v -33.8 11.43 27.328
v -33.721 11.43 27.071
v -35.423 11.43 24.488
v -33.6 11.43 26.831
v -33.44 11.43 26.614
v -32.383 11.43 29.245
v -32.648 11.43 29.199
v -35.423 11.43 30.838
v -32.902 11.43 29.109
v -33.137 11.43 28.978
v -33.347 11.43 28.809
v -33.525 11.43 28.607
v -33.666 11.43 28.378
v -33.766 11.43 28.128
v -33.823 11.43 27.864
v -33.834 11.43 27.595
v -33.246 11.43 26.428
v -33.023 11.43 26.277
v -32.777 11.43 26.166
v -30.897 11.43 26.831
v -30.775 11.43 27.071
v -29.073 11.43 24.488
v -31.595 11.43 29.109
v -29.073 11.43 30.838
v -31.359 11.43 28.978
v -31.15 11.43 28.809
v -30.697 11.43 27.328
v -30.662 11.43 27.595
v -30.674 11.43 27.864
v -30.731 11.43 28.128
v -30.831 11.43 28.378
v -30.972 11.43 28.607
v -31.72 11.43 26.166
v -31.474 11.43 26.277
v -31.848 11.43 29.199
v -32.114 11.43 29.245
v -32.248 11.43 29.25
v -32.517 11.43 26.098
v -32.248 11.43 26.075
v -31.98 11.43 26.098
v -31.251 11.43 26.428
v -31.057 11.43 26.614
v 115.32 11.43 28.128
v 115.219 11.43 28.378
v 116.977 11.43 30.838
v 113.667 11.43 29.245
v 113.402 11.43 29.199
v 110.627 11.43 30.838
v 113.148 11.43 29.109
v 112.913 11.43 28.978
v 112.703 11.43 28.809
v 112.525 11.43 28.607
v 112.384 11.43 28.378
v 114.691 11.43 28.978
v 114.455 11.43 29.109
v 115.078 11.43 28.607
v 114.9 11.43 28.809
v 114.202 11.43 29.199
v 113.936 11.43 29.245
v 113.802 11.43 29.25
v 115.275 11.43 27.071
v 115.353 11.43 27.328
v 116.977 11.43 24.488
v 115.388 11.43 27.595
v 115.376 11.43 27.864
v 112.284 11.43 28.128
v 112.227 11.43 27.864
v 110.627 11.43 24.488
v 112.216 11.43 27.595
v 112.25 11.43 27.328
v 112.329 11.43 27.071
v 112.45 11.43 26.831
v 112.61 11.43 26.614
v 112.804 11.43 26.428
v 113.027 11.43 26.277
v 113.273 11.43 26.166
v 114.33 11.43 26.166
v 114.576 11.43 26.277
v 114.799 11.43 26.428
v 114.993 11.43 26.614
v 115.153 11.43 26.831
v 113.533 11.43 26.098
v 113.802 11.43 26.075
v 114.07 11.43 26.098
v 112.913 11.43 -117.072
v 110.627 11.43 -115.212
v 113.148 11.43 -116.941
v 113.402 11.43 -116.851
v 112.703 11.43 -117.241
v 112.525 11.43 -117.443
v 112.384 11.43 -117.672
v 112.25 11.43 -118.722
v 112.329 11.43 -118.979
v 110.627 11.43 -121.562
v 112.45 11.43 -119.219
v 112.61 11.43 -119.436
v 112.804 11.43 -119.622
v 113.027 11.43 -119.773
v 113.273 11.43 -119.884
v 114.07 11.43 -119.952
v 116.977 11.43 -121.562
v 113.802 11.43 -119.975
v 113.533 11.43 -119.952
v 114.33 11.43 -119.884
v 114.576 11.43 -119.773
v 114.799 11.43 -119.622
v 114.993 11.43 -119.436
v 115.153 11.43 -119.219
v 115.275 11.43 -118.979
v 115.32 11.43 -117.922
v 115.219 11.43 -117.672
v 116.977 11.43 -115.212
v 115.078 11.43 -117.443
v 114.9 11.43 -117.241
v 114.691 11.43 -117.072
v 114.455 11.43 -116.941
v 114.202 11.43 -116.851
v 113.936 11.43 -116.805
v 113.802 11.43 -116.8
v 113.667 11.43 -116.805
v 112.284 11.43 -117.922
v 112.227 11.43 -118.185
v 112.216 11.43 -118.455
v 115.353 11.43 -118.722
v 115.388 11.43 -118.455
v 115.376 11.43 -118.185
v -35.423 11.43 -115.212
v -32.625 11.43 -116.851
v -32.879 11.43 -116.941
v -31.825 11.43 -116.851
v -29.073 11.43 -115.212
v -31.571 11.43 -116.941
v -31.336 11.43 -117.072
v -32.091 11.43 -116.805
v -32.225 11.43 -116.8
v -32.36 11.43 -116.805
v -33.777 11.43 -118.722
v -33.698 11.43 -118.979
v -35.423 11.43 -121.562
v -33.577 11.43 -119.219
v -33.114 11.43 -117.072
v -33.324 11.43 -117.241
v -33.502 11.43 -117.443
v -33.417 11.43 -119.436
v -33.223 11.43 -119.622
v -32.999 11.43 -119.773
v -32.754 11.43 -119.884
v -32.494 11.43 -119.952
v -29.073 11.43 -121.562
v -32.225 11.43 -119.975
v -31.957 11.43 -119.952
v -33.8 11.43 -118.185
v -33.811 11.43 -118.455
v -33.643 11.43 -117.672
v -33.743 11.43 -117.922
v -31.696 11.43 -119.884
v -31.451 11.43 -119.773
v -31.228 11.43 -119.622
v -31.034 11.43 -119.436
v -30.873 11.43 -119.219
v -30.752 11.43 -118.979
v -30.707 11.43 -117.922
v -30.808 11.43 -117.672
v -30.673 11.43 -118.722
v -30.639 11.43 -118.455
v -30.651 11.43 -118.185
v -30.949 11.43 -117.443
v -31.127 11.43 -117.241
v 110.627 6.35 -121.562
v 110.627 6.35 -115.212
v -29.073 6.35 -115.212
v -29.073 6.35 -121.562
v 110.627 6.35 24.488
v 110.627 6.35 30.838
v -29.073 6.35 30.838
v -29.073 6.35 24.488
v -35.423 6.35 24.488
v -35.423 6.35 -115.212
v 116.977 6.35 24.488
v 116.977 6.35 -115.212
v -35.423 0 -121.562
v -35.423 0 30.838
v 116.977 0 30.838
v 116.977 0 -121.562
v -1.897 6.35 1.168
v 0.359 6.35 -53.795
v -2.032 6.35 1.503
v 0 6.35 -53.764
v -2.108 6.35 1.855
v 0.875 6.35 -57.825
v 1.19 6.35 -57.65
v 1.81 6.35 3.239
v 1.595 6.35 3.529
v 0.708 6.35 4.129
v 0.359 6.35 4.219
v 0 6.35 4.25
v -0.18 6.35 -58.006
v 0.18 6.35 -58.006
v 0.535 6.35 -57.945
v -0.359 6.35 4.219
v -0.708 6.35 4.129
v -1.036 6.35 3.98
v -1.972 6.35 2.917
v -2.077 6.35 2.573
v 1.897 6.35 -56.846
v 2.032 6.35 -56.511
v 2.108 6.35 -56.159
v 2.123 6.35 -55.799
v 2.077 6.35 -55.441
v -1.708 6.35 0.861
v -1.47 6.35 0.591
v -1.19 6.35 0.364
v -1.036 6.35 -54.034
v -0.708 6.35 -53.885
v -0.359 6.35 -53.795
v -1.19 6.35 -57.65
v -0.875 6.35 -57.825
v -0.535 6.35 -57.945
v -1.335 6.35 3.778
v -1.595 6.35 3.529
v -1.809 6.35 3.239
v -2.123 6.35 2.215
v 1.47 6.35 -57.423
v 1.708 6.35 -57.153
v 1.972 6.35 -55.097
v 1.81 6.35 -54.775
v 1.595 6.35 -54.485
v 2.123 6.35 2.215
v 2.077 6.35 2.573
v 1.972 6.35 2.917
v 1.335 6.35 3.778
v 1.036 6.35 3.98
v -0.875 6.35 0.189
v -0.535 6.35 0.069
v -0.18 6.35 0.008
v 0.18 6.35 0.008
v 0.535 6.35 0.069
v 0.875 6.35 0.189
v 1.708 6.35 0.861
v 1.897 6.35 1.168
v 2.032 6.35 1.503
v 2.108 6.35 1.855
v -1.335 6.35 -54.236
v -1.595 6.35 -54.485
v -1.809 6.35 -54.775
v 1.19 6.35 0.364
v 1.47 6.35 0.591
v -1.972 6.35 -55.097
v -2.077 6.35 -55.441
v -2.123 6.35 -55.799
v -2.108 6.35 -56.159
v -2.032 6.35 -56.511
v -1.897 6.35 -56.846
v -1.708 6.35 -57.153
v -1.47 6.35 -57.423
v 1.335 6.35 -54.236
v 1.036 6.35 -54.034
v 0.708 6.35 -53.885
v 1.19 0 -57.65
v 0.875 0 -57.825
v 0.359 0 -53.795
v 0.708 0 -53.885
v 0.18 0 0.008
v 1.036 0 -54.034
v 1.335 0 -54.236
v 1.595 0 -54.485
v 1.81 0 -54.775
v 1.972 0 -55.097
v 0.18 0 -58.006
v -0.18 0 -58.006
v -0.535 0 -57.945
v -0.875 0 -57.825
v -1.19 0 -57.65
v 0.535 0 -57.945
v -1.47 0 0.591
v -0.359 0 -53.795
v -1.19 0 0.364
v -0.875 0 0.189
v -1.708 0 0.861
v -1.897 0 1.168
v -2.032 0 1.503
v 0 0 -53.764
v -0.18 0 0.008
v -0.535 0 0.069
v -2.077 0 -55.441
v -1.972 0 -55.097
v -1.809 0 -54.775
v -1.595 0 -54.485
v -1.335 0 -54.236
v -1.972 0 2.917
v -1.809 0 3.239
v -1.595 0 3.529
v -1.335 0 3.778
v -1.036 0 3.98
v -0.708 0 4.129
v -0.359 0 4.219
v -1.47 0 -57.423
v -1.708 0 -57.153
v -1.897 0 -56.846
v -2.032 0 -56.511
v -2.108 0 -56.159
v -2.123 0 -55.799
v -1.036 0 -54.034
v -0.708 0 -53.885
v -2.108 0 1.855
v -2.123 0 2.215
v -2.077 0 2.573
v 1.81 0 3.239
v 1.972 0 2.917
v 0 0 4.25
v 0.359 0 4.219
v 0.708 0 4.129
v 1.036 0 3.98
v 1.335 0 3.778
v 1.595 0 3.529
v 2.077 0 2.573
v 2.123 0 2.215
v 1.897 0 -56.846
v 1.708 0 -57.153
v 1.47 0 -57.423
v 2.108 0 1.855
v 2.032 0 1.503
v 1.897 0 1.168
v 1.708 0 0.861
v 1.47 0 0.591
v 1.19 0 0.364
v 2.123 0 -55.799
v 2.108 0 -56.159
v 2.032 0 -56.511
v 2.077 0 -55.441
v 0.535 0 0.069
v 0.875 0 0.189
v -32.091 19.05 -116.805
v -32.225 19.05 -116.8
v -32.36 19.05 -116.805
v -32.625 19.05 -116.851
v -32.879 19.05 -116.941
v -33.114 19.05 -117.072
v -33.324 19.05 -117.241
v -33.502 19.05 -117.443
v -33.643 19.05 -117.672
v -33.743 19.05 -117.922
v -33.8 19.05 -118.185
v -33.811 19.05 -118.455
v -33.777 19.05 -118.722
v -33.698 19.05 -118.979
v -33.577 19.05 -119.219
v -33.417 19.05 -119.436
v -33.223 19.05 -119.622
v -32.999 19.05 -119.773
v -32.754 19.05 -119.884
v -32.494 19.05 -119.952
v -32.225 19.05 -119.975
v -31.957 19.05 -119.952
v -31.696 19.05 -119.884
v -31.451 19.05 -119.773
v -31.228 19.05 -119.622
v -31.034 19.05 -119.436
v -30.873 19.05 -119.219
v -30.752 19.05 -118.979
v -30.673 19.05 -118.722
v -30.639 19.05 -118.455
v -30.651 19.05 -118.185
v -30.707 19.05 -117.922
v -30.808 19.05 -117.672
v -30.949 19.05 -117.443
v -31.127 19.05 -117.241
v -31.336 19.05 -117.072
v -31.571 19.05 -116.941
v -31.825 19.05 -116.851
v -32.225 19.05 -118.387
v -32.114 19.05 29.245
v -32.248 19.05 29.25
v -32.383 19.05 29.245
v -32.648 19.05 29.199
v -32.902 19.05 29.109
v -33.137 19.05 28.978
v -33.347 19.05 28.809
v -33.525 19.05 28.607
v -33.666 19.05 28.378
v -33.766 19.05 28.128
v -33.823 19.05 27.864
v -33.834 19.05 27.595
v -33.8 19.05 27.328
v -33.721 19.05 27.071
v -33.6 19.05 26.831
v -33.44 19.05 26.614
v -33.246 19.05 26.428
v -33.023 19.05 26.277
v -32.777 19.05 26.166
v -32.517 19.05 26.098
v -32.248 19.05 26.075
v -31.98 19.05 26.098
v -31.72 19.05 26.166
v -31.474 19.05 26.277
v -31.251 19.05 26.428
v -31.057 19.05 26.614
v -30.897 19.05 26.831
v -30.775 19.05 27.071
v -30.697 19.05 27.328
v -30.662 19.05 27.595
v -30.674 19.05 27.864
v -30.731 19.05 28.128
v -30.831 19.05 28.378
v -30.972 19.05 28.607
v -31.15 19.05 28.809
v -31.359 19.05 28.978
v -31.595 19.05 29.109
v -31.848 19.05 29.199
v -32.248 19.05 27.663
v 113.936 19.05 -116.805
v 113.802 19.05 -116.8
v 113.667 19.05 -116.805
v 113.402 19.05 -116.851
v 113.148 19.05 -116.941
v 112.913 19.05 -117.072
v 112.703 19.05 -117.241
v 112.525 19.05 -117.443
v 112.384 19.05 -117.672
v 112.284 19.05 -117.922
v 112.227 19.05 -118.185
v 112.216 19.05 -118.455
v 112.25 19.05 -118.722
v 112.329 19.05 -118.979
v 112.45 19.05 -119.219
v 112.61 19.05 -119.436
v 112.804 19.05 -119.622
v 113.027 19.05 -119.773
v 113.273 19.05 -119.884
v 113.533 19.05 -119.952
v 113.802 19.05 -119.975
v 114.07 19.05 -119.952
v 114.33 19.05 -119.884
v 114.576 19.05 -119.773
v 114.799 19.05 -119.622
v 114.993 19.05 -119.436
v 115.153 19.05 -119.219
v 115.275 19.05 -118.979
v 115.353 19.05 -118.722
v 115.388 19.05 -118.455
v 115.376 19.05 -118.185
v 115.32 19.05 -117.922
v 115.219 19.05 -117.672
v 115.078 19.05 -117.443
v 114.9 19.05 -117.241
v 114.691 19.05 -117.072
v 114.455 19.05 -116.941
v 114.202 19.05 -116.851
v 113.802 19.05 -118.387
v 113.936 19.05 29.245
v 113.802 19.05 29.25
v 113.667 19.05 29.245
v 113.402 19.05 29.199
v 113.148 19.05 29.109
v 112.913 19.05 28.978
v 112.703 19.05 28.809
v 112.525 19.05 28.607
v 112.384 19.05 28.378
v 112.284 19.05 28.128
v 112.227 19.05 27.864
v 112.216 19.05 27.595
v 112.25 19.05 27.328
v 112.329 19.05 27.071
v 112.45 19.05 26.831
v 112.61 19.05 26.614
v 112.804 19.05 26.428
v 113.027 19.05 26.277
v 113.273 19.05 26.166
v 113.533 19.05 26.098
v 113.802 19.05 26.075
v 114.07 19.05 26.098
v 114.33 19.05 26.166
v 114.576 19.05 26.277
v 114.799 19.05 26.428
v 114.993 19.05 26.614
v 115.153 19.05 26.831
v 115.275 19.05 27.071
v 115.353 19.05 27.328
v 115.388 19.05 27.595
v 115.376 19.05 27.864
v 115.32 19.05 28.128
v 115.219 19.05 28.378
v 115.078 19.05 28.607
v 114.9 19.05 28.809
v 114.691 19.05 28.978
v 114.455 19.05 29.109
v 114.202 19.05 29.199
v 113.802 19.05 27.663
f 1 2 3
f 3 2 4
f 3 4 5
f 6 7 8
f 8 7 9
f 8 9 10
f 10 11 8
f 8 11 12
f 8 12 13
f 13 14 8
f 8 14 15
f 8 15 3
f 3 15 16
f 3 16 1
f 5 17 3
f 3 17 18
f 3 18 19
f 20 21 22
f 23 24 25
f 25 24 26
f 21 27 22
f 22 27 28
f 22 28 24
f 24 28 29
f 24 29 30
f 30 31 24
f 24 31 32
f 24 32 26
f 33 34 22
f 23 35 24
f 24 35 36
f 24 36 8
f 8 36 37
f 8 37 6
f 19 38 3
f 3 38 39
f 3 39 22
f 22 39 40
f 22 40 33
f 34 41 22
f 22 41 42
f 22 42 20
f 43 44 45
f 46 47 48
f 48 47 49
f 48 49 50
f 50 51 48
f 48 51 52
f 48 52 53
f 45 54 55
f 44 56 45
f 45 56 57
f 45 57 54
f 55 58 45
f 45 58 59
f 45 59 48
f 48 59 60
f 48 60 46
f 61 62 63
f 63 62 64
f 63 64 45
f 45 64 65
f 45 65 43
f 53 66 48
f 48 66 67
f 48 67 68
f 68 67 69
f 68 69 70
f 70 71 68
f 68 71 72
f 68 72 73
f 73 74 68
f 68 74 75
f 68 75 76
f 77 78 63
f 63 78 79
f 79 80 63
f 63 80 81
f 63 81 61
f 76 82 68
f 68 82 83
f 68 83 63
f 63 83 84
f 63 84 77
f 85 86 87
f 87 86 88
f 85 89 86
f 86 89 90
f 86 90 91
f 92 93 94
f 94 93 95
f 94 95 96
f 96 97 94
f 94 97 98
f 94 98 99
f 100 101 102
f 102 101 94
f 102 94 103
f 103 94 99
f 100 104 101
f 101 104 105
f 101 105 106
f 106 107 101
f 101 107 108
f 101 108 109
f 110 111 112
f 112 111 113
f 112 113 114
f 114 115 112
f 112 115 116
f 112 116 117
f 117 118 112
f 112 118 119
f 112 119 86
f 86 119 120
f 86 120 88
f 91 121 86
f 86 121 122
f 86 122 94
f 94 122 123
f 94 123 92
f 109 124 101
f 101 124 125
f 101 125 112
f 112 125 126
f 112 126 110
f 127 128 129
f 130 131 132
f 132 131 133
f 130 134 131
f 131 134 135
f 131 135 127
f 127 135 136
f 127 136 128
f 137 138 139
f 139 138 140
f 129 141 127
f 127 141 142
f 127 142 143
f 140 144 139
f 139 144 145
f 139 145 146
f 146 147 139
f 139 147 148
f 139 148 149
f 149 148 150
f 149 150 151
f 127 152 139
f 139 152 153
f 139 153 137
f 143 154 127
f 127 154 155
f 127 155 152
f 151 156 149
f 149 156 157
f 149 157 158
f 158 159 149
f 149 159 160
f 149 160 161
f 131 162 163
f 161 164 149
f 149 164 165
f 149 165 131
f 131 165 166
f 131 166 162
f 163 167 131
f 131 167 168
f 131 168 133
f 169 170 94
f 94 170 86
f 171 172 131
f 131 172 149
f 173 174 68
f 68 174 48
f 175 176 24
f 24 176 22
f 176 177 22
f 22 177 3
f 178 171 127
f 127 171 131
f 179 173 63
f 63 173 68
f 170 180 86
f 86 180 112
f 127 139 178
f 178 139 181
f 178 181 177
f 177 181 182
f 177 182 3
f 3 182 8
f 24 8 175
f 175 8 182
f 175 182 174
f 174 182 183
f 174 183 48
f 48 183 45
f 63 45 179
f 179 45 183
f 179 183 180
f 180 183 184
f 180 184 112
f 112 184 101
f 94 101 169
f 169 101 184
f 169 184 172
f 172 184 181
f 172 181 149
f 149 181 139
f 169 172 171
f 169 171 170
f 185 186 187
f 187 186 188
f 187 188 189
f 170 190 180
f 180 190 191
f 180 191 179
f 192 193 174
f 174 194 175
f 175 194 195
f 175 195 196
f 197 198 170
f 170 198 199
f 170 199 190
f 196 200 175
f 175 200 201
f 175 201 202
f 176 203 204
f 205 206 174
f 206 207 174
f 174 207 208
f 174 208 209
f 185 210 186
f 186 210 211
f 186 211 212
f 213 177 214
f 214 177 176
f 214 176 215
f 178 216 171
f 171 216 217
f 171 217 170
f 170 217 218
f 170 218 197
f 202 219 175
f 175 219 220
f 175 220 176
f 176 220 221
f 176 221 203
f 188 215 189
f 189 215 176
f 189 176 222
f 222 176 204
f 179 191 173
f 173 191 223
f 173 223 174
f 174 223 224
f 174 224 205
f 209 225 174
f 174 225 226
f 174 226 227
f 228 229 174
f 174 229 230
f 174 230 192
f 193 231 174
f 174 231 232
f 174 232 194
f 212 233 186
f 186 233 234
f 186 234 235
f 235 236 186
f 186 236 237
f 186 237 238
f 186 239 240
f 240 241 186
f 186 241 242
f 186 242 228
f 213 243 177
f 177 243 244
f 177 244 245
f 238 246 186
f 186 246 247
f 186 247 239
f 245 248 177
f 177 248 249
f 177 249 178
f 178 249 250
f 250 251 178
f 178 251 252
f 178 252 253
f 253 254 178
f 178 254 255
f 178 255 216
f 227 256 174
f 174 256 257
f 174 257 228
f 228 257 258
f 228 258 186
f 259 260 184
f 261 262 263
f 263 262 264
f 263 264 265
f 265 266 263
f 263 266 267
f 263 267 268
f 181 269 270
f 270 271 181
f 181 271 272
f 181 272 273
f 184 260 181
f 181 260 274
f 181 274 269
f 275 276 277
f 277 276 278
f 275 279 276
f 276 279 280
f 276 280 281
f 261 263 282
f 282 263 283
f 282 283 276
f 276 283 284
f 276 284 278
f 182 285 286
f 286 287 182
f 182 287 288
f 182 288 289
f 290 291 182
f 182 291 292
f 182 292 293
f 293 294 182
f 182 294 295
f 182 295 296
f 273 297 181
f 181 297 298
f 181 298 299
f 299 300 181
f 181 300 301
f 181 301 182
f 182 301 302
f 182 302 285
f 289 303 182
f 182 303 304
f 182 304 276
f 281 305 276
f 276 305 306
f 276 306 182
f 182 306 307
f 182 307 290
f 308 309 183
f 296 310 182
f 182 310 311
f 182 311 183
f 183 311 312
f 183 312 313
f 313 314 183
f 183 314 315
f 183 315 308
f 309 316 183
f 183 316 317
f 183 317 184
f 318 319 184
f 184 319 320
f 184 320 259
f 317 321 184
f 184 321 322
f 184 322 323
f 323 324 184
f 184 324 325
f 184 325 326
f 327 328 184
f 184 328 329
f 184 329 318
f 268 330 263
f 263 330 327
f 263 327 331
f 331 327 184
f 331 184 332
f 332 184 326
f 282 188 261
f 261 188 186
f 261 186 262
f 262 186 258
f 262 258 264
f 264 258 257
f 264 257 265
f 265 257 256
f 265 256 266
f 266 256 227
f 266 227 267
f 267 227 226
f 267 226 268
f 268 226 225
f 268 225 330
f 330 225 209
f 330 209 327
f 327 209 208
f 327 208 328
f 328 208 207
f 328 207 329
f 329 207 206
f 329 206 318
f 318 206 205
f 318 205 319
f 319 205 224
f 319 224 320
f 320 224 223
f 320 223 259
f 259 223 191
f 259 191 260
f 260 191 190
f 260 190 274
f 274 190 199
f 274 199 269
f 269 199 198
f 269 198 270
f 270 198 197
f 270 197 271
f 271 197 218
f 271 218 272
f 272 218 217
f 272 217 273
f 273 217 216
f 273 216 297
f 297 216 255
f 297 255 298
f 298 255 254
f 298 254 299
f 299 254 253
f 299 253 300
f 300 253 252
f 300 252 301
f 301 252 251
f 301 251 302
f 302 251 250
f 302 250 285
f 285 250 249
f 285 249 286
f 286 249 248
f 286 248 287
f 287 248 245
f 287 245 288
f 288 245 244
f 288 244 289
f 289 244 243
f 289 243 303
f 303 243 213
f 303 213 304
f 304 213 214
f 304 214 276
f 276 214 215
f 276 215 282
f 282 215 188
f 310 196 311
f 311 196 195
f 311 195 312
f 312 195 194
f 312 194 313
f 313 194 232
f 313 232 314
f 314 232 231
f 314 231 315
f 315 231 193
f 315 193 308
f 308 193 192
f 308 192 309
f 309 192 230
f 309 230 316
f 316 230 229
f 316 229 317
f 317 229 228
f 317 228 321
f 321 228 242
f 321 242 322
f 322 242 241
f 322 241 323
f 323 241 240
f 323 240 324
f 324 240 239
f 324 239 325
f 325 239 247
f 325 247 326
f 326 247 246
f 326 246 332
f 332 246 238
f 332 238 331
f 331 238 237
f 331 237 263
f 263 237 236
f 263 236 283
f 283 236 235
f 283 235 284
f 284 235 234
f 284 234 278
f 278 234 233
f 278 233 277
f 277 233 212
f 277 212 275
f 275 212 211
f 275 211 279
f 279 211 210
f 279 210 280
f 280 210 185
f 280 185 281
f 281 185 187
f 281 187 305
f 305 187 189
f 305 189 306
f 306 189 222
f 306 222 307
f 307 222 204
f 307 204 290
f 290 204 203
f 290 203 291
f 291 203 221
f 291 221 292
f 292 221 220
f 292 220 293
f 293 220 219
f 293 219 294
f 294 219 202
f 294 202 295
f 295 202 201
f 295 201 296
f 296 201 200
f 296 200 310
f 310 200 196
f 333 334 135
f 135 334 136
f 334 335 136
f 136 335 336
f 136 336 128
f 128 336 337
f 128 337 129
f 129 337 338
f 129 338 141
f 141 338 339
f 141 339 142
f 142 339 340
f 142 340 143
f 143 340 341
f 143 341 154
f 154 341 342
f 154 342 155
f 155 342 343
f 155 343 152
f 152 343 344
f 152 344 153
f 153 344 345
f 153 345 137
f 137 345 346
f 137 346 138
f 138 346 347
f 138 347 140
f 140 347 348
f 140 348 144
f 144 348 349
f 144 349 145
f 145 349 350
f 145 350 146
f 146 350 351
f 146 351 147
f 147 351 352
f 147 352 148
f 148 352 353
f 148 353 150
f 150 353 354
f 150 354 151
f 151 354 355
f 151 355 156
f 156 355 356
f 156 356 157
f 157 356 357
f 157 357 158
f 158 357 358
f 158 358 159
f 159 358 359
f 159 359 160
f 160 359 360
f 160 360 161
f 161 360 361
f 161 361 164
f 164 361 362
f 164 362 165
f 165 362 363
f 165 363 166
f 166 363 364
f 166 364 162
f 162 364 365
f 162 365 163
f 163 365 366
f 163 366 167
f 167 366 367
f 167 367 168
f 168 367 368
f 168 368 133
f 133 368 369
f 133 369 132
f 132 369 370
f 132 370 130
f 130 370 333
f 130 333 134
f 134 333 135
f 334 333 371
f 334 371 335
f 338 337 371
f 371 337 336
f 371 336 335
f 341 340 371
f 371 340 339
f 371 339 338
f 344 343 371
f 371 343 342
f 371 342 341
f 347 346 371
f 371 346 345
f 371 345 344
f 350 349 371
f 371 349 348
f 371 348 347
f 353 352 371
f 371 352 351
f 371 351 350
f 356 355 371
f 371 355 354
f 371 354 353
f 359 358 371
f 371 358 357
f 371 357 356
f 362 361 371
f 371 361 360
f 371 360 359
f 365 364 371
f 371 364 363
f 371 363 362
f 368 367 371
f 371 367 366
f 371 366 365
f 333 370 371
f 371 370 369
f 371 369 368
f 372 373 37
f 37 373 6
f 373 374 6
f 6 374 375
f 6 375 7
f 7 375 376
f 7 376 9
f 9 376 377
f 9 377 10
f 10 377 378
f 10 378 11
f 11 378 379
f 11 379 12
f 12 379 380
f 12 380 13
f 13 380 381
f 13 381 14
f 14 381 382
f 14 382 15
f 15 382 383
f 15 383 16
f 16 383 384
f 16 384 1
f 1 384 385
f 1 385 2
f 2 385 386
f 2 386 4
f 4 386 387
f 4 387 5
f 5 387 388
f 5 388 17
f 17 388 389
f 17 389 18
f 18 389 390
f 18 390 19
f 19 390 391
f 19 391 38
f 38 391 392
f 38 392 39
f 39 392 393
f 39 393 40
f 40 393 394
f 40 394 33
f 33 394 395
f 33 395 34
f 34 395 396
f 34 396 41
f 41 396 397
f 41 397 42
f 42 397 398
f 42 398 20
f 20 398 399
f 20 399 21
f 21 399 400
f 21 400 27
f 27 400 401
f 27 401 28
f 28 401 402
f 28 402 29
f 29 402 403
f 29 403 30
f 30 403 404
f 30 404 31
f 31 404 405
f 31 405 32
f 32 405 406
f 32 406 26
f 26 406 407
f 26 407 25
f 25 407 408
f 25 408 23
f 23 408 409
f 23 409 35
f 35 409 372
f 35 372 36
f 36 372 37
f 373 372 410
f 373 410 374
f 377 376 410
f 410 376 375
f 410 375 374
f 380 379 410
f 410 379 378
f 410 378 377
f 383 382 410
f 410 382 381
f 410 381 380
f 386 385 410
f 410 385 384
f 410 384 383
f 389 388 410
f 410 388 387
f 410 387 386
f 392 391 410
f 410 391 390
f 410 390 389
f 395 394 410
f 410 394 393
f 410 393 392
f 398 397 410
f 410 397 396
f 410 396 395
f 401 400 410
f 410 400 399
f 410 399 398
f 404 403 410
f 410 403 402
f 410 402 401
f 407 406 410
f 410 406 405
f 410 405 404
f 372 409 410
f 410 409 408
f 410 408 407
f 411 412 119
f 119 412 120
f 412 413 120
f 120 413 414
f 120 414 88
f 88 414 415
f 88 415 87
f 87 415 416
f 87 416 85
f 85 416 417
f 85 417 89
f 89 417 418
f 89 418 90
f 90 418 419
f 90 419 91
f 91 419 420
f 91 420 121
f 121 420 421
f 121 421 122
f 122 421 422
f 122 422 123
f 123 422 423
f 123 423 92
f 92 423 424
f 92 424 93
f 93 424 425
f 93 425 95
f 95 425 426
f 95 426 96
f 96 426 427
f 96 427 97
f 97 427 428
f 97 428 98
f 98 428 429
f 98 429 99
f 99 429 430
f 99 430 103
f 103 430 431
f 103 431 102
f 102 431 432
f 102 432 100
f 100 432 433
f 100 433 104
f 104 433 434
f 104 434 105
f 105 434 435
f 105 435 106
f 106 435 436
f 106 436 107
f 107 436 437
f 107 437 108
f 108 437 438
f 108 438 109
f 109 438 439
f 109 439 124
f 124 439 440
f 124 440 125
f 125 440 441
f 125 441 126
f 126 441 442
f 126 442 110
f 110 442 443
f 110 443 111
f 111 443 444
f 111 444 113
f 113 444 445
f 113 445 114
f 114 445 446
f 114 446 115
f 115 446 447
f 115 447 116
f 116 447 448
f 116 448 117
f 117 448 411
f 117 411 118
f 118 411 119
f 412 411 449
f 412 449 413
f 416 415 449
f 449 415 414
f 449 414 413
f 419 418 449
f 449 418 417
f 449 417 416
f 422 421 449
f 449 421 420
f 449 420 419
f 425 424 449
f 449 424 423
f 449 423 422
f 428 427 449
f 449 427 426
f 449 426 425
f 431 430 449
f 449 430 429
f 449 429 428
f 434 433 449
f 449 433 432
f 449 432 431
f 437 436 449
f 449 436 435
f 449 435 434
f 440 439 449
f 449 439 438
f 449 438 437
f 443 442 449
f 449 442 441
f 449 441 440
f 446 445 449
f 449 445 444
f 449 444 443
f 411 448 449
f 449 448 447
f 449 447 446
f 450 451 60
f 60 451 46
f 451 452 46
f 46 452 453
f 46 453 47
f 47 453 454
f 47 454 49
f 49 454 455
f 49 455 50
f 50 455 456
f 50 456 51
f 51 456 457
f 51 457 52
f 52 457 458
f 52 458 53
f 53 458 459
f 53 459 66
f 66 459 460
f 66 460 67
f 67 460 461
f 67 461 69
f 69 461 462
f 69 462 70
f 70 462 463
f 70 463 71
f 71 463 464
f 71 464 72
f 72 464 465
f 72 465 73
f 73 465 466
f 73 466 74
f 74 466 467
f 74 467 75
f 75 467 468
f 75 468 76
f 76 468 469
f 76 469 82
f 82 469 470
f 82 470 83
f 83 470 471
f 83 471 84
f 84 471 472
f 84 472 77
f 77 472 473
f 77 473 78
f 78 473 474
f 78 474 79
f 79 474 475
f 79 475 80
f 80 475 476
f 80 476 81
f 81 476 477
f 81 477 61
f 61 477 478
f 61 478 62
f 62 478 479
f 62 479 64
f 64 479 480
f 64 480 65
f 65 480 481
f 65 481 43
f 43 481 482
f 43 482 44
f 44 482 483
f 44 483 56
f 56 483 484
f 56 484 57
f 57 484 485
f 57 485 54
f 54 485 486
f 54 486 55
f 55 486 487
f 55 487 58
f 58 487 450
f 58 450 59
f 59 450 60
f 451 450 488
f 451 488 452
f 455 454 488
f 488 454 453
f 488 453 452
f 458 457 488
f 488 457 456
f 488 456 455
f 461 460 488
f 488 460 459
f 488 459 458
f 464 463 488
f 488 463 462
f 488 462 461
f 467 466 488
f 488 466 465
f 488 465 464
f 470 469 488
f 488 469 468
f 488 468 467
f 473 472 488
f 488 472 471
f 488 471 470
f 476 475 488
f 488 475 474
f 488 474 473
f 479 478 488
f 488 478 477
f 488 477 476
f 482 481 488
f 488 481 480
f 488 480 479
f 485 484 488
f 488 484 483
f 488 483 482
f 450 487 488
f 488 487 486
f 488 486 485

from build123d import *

# Parameters (mm, degrees)
STOCK_PLATE_BETA1_1_OUTLINE_W   = 152.4
STOCK_PLATE_BETA1_1_OUTLINE_H   = 152.4
STOCK_PLATE_BETA1_1_OUTLINE_R   = 2.125
STOCK_PLATE_BETA1_1_DEPTH       = 6.35
STOCK_PLATE_BETA1_1_START       = 6.35
STOCK_PLATE_BETA1_1_2_OUTLINE_W = 6.35
STOCK_PLATE_BETA1_1_2_OUTLINE_H = 6.35
STOCK_PLATE_BETA1_1_2_DEPTH     = 5.08
SKETCH1_R                       = 1.5875
BOSS_EXTRUDE1_DEPTH             = 7.62


# Read off the part's stored shape, not the designer's step: Stock-plate_beta1-1
with BuildPart() as part:
    # Stock-plate_beta1-1 outline → Stock-plate_beta1-1 (new body)
    with BuildSketch(Plane(origin=(0, 0, 0), x_dir=(1, 0, 0), z_dir=(0, 1, 0))):
        with Locations((40.776583963, 45.362139437)):
            Rectangle(STOCK_PLATE_BETA1_1_OUTLINE_W, STOCK_PLATE_BETA1_1_OUTLINE_H)
        with Locations((0, -2.125)):
            Circle(STOCK_PLATE_BETA1_1_OUTLINE_R, mode=Mode.SUBTRACT)
        with Locations((0, 55.889)):
            Circle(STOCK_PLATE_BETA1_1_OUTLINE_R, mode=Mode.SUBTRACT)
    extrude(amount=STOCK_PLATE_BETA1_1_DEPTH)

    # Stock-plate_beta1-1 2 outline → Stock-plate_beta1-1 2 (add)
    with BuildSketch(Plane(origin=(0, 0, 0), x_dir=(1, 0, 0), z_dir=(0, 1, 0)).offset(STOCK_PLATE_BETA1_1_START)):
        with Locations((113.801583963, 118.387139437)):
            Rectangle(STOCK_PLATE_BETA1_1_2_OUTLINE_W, STOCK_PLATE_BETA1_1_2_OUTLINE_H)
        with Locations((-32.248416037, 118.387139437)):
            Rectangle(STOCK_PLATE_BETA1_1_2_OUTLINE_W, STOCK_PLATE_BETA1_1_2_OUTLINE_H)
        with Locations((113.801583963, -27.662860563)):
            Rectangle(STOCK_PLATE_BETA1_1_2_OUTLINE_W, STOCK_PLATE_BETA1_1_2_OUTLINE_H)
        with Locations((-32.248416037, -27.662860563)):
            Rectangle(STOCK_PLATE_BETA1_1_2_OUTLINE_W, STOCK_PLATE_BETA1_1_2_OUTLINE_H)
    extrude(amount=STOCK_PLATE_BETA1_1_2_DEPTH)

    # Sketch1 → Boss-Extrude1 (add)
    with BuildSketch(Plane(origin=(0, 11.43, 0), x_dir=(1, 0, 0), z_dir=(0, 1, 0))):
        with Locations(Location((-32.248416037, -27.662860563, 0), (0, 0, 90))):
            Circle(SKETCH1_R)
        with Locations(Location((-32.225272977, 118.387139437, 0), (0, 0, 90))):
            Circle(SKETCH1_R)
        with Locations(Location((113.801583963, 118.387139437, 0), (0, 0, 90))):
            Circle(SKETCH1_R)
        with Locations(Location((113.801583963, -27.662860563, 0), (0, 0, 90))):
            Circle(SKETCH1_R)
    extrude(amount=BOSS_EXTRUDE1_DEPTH)


solid = part.part
